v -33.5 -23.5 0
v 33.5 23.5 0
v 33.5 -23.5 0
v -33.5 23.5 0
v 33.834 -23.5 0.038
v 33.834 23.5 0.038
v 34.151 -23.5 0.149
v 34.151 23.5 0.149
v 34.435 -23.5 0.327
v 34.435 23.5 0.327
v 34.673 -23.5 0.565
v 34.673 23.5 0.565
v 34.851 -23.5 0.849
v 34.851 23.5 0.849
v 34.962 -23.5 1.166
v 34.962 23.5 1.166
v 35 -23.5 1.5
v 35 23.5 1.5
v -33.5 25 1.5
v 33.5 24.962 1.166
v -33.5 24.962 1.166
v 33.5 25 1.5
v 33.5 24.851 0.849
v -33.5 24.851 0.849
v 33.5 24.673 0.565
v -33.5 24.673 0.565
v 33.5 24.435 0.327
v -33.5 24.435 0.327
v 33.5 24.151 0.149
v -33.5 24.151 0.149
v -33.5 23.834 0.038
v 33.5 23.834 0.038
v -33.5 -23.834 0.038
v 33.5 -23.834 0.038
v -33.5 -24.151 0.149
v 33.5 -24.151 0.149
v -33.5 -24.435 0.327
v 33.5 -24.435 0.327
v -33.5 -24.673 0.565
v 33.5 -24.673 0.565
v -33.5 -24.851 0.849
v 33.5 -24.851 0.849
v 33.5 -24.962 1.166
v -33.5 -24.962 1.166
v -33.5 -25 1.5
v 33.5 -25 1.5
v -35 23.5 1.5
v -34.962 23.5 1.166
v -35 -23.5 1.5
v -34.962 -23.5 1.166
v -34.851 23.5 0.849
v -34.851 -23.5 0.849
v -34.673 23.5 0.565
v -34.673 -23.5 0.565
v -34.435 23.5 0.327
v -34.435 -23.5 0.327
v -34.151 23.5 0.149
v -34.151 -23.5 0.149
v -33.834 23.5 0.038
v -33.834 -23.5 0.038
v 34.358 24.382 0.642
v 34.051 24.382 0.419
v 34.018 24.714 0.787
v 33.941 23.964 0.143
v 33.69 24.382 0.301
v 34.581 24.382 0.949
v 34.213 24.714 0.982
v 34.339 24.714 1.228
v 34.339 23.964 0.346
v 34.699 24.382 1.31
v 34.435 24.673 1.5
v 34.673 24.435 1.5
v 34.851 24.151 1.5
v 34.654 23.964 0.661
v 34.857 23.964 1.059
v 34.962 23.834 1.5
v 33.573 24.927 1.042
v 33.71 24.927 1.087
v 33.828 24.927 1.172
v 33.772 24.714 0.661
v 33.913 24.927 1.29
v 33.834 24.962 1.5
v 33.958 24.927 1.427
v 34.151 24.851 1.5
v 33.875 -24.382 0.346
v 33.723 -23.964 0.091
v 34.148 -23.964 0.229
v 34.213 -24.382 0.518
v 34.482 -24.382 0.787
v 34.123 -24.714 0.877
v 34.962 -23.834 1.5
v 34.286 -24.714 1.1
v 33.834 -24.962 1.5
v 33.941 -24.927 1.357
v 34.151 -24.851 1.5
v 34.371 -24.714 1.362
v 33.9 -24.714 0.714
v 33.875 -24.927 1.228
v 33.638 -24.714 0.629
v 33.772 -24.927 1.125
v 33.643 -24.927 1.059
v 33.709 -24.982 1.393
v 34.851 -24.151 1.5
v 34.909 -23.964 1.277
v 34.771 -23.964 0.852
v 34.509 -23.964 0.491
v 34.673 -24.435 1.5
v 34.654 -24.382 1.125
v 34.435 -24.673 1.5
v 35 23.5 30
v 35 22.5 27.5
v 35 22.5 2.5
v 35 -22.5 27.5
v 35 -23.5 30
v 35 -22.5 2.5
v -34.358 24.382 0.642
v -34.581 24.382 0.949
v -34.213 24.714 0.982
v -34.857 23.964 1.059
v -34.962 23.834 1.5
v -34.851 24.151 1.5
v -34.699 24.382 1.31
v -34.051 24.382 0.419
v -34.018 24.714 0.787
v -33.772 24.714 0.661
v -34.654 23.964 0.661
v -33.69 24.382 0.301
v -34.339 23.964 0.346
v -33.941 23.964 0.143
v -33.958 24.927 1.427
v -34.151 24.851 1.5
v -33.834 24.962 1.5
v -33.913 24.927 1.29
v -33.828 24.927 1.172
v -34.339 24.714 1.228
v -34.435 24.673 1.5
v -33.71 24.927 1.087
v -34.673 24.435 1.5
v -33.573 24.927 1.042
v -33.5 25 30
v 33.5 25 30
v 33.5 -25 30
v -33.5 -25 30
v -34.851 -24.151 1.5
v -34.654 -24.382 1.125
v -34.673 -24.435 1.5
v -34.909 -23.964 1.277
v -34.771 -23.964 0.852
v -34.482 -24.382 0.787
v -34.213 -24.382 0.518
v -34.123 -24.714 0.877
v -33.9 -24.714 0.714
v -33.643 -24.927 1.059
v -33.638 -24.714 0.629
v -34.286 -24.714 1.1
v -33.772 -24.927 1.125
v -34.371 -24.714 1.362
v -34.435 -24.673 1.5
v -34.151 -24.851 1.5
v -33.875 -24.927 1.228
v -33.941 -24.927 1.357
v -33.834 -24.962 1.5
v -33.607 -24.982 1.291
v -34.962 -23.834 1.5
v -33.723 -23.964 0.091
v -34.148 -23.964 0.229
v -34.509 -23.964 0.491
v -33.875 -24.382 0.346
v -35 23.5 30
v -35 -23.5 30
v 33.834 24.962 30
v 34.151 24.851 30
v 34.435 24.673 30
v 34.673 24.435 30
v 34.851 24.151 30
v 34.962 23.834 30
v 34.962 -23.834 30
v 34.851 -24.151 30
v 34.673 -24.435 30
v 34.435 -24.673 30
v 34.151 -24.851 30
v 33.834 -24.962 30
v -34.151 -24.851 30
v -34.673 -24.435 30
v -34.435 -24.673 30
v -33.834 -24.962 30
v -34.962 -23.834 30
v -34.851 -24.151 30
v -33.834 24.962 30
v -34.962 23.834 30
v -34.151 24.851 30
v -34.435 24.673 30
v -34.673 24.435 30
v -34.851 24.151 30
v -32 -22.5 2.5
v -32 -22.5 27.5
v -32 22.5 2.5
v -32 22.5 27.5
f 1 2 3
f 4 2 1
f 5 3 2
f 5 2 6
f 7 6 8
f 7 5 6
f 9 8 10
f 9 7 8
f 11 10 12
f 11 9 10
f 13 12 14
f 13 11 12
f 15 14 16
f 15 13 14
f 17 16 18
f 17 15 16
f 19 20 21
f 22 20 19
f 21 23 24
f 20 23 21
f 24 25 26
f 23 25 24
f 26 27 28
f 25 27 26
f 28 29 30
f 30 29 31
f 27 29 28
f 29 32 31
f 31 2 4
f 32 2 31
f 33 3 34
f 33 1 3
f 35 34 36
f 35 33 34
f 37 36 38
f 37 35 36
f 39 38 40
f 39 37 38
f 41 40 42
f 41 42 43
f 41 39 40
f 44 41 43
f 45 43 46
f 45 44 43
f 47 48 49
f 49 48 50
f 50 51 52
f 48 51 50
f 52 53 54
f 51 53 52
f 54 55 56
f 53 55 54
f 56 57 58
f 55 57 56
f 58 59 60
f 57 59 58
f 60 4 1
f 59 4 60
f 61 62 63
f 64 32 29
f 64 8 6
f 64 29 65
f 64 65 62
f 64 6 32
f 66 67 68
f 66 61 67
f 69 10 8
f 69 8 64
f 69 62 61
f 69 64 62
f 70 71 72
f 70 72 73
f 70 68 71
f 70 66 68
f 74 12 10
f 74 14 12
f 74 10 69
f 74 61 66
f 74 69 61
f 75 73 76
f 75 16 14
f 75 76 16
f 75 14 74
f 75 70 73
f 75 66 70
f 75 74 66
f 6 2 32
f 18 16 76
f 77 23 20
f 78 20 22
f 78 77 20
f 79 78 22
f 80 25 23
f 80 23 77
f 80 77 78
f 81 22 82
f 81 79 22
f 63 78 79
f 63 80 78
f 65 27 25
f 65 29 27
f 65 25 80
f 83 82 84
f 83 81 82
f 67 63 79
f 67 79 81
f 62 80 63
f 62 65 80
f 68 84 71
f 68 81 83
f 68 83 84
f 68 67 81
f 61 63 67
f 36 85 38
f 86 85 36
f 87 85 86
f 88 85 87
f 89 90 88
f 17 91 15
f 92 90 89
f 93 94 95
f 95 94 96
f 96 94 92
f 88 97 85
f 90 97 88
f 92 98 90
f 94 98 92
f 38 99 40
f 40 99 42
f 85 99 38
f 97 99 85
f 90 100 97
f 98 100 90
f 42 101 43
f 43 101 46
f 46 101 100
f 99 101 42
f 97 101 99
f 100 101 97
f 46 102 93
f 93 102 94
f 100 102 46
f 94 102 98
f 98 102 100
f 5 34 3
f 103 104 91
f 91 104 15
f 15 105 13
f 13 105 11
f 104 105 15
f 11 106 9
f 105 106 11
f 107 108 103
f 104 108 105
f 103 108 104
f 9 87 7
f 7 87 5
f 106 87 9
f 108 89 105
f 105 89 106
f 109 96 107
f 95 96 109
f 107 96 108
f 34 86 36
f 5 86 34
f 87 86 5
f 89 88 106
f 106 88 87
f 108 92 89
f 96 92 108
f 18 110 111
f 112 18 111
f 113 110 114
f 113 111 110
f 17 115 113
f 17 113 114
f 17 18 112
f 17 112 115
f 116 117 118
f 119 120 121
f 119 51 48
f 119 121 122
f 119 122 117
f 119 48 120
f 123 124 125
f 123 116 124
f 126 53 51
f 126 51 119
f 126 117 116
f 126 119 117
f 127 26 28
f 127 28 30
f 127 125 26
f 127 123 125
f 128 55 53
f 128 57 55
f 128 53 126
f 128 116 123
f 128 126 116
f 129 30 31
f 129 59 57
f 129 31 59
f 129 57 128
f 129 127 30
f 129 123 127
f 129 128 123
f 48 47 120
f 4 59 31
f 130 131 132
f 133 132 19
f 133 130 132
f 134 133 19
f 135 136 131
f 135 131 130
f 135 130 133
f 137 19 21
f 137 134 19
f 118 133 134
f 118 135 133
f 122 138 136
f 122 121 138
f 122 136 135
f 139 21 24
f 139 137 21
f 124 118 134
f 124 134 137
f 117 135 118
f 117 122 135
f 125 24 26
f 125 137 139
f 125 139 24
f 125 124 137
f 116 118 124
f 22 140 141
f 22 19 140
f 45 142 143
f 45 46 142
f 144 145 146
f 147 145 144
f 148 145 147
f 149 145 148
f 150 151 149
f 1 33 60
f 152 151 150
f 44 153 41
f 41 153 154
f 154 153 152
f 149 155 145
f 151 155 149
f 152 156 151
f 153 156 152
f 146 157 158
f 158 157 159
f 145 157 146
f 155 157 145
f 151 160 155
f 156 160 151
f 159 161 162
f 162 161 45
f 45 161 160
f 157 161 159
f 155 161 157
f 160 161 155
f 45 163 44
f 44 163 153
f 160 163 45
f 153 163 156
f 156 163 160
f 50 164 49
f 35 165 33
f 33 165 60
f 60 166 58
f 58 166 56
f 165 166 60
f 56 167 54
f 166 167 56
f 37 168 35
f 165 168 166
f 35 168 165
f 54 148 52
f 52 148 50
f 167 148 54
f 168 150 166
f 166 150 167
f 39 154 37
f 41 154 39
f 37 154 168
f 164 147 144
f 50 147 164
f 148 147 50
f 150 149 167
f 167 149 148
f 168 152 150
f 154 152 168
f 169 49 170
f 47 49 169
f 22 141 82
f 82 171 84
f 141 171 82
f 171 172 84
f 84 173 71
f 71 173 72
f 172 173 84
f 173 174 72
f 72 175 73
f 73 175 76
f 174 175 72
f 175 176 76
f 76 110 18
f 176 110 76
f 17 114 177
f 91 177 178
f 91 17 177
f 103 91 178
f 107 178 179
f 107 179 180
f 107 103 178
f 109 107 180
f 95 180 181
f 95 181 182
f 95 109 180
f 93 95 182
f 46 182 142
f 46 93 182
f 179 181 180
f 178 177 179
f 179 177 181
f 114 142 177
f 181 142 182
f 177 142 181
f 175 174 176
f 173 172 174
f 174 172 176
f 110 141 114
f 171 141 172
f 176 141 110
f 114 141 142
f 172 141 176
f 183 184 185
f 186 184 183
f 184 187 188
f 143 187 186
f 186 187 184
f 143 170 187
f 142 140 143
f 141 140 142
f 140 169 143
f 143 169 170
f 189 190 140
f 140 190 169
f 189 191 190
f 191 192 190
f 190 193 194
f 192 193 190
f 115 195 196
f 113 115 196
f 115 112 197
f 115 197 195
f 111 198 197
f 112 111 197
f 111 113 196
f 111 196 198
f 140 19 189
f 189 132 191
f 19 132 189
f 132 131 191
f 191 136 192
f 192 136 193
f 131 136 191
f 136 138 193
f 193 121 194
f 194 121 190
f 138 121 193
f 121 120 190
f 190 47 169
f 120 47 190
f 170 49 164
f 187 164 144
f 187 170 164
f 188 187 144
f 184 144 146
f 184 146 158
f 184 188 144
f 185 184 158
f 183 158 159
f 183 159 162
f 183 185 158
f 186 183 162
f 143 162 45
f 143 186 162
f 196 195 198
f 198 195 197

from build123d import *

# Parameters (mm, degrees)
SKETCH_W     = 70
SKETCH_H     = 50
PAD_DEPTH    = 30
SKETCH001_W  = 45
SKETCH001_H  = 25
POCKET_DEPTH = 67
FILLET_R     = 1.5
FILLET001_R  = 1.5
FILLET002_R  = 1.5
FILLET003_R  = 1.5


with BuildPart() as part:
    # Sketch → Pad (new body)
    with BuildSketch(Plane.XY):
        Rectangle(SKETCH_W, SKETCH_H)
    extrude(amount=PAD_DEPTH)

    # Sketch001 (on Face2 of Pad) → Pocket (cut)
    with BuildSketch(Plane.YZ.offset(35)):
        with Locations((0, 15)):
            Rectangle(SKETCH001_W, SKETCH001_H)
    extrude(amount=-POCKET_DEPTH, mode=Mode.SUBTRACT)

    # Fillet
    fillet_edges = [part.edges().sort_by_distance(p)[0] for p in [
        (-35, 0, 0),
    ]]
    fillet(fillet_edges, radius=FILLET_R)

    # Fillet001
    fillet001_edges = [part.edges().sort_by_distance(p)[0] for p in [
        (35, 0, 0),
    ]]
    fillet(fillet001_edges, radius=FILLET001_R)

    # Fillet002
    fillet002_edges = [part.edges().sort_by_distance(p)[0] for p in [
        (0, -25, 0),
    ]]
    fillet(fillet002_edges, radius=FILLET002_R)

    # Fillet003
    fillet003_edges = [part.edges().sort_by_distance(p)[0] for p in [
        (0, 25, 0),
    ]]
    fillet(fillet003_edges, radius=FILLET003_R)


solid = part.part
